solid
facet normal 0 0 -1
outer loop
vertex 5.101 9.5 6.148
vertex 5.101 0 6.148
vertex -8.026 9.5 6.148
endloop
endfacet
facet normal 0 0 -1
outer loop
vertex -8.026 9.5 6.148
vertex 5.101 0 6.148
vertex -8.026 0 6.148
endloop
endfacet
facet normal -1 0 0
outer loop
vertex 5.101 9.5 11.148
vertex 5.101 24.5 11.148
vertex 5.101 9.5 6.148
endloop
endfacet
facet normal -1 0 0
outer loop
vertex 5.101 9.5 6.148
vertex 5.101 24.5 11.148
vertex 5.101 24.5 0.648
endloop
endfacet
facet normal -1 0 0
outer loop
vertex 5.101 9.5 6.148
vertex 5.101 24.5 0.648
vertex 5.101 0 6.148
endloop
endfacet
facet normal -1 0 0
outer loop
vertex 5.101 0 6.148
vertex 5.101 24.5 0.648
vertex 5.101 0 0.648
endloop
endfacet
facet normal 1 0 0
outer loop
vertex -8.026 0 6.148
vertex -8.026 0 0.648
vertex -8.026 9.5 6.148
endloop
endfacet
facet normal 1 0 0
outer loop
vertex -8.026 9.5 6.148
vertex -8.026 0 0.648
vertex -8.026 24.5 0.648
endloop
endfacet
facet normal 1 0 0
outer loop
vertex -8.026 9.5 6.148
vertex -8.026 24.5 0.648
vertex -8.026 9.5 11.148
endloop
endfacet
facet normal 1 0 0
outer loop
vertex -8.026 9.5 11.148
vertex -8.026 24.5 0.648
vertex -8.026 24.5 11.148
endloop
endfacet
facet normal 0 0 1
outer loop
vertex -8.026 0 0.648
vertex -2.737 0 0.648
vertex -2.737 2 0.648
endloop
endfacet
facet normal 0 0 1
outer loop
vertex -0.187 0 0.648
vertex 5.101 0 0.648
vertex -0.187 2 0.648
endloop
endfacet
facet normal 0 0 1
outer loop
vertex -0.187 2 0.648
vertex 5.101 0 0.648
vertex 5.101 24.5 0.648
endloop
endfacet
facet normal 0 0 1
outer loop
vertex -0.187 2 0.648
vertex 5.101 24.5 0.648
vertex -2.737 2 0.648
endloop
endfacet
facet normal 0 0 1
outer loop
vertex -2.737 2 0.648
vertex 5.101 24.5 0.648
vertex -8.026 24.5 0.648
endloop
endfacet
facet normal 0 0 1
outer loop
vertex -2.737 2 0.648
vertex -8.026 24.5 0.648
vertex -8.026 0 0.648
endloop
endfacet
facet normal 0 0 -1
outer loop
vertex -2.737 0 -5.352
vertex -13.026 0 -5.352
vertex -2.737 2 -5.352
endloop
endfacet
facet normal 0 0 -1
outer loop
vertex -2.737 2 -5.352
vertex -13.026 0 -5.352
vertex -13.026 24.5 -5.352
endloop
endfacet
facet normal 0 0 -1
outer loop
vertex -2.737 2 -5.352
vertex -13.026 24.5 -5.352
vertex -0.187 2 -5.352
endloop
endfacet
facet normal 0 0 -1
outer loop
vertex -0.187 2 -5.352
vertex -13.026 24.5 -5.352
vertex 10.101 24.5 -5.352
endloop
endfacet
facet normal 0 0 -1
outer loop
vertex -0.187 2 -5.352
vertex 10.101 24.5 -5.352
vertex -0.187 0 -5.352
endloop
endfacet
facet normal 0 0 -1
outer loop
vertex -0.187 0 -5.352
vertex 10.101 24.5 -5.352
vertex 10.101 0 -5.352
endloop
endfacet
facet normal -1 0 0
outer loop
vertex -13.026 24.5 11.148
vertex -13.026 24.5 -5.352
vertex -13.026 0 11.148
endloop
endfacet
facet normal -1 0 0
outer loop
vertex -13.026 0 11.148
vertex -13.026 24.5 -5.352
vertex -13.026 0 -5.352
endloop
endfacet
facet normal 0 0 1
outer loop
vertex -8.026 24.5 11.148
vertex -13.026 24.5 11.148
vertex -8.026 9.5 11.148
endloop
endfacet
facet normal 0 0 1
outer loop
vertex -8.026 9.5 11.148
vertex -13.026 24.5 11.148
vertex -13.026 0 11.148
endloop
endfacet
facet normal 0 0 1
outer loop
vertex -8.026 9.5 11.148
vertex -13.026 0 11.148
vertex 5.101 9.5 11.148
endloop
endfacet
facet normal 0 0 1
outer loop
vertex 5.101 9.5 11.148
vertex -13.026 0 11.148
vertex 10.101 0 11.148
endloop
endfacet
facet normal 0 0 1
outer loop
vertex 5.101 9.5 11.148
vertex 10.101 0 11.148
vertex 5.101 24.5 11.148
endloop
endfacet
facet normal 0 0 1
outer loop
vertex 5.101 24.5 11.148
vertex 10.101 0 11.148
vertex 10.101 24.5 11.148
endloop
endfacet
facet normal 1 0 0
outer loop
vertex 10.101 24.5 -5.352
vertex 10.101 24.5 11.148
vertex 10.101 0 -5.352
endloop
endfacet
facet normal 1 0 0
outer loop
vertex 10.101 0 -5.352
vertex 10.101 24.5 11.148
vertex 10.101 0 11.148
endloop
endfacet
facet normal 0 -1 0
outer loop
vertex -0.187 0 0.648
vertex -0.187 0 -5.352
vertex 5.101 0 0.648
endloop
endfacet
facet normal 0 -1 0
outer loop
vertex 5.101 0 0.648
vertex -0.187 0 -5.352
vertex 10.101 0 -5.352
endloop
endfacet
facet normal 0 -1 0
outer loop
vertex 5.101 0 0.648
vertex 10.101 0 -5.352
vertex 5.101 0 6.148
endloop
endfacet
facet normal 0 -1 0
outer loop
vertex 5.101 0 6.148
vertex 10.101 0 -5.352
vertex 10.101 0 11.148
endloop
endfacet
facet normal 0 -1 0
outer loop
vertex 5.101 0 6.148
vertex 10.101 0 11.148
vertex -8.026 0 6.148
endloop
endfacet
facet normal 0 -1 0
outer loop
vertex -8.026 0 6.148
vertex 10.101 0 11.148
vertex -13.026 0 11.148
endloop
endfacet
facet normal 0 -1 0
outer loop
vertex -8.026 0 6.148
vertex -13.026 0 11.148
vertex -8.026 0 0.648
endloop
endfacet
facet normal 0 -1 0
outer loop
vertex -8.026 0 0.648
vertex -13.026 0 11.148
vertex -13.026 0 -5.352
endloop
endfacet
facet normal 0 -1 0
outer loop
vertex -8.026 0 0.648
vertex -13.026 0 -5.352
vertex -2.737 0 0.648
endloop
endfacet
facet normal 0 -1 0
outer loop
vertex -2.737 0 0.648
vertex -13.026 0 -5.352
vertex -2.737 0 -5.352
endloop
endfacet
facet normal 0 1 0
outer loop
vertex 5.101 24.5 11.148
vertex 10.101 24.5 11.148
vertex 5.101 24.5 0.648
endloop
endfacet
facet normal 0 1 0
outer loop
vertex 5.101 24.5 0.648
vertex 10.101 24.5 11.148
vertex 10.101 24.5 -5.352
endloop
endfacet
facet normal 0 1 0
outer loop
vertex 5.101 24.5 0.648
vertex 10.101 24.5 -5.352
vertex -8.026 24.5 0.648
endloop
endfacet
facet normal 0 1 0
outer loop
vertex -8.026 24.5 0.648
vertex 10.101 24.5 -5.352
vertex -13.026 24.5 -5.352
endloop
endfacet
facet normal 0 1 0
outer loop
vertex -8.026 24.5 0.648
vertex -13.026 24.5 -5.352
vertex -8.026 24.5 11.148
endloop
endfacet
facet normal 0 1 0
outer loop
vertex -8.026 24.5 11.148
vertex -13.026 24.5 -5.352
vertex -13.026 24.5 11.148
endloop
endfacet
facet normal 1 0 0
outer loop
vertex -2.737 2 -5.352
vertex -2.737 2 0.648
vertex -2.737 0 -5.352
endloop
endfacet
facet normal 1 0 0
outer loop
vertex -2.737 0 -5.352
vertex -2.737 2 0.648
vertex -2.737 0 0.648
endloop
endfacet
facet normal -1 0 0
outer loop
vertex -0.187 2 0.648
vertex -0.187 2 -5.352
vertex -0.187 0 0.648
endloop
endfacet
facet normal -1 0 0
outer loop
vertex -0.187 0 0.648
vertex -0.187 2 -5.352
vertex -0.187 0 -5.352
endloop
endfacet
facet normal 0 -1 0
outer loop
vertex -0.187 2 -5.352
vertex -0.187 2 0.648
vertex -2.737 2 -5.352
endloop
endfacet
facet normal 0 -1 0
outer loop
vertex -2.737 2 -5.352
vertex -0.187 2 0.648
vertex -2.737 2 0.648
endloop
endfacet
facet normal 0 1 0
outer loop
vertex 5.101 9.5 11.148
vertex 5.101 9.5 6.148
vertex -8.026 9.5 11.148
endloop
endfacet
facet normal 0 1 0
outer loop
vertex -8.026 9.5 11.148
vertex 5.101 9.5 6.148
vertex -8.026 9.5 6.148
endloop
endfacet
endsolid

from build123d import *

# Parameters (mm, degrees)
SKETCH1_W           = 23.127
SKETCH1_H           = 16.5
SKETCH1_W_2         = 13.127
SKETCH1_H_2         = 5.5
SKETCH1_W_3         = 2.55
SKETCH1_H_3         = 6
BOSS_EXTRUDE1_DEPTH = 24.5
SKETCH2_W           = 2.55
SKETCH2_H           = 6
CUT_EXTRUDE1_DEPTH  = 2
SKETCH3_W           = 13.127
SKETCH3_H           = 5
CUT_EXTRUDE2_DEPTH  = 15


with BuildPart() as part:
    # Sketch1 → Boss-Extrude1 (new body)
    # profile 1 of 2: a face of its own
    with BuildSketch(Plane(origin=(0, 0, 0), x_dir=(1, 0, 0), z_dir=(0, 1, 0))):
        with Locations((-1.462471661, -2.897695951)):
            Rectangle(SKETCH1_W, SKETCH1_H)
        with Locations((-1.462471661, -3.397695951)):
            Rectangle(SKETCH1_W_2, SKETCH1_H_2, mode=Mode.SUBTRACT)
    # profile 2 of 2: a face of its own
    with BuildSketch(Plane(origin=(0, 0, 0), x_dir=(1, 0, 0), z_dir=(0, 1, 0))):
        with Locations((-1.462471661, 2.352304049)):
            Rectangle(SKETCH1_W_3, SKETCH1_H_3)
    extrude(amount=BOSS_EXTRUDE1_DEPTH)

    # Sketch2 → Cut-Extrude1 (cut)
    with BuildSketch(Plane.XZ):
        with Locations((-1.462471661, -2.352304049)):
            Rectangle(SKETCH2_W, SKETCH2_H)
    extrude(amount=-CUT_EXTRUDE1_DEPTH, mode=Mode.SUBTRACT)

    # Sketch3 → Cut-Extrude2 (cut)
    with BuildSketch(Plane(origin=(0, 24.5, 0), x_dir=(1, 0, 0), z_dir=(0, 1, 0))):
        with Locations((-1.462471661, -8.647695951)):
            Rectangle(SKETCH3_W, SKETCH3_H)
    extrude(amount=-CUT_EXTRUDE2_DEPTH, mode=Mode.SUBTRACT)


solid = part.part
